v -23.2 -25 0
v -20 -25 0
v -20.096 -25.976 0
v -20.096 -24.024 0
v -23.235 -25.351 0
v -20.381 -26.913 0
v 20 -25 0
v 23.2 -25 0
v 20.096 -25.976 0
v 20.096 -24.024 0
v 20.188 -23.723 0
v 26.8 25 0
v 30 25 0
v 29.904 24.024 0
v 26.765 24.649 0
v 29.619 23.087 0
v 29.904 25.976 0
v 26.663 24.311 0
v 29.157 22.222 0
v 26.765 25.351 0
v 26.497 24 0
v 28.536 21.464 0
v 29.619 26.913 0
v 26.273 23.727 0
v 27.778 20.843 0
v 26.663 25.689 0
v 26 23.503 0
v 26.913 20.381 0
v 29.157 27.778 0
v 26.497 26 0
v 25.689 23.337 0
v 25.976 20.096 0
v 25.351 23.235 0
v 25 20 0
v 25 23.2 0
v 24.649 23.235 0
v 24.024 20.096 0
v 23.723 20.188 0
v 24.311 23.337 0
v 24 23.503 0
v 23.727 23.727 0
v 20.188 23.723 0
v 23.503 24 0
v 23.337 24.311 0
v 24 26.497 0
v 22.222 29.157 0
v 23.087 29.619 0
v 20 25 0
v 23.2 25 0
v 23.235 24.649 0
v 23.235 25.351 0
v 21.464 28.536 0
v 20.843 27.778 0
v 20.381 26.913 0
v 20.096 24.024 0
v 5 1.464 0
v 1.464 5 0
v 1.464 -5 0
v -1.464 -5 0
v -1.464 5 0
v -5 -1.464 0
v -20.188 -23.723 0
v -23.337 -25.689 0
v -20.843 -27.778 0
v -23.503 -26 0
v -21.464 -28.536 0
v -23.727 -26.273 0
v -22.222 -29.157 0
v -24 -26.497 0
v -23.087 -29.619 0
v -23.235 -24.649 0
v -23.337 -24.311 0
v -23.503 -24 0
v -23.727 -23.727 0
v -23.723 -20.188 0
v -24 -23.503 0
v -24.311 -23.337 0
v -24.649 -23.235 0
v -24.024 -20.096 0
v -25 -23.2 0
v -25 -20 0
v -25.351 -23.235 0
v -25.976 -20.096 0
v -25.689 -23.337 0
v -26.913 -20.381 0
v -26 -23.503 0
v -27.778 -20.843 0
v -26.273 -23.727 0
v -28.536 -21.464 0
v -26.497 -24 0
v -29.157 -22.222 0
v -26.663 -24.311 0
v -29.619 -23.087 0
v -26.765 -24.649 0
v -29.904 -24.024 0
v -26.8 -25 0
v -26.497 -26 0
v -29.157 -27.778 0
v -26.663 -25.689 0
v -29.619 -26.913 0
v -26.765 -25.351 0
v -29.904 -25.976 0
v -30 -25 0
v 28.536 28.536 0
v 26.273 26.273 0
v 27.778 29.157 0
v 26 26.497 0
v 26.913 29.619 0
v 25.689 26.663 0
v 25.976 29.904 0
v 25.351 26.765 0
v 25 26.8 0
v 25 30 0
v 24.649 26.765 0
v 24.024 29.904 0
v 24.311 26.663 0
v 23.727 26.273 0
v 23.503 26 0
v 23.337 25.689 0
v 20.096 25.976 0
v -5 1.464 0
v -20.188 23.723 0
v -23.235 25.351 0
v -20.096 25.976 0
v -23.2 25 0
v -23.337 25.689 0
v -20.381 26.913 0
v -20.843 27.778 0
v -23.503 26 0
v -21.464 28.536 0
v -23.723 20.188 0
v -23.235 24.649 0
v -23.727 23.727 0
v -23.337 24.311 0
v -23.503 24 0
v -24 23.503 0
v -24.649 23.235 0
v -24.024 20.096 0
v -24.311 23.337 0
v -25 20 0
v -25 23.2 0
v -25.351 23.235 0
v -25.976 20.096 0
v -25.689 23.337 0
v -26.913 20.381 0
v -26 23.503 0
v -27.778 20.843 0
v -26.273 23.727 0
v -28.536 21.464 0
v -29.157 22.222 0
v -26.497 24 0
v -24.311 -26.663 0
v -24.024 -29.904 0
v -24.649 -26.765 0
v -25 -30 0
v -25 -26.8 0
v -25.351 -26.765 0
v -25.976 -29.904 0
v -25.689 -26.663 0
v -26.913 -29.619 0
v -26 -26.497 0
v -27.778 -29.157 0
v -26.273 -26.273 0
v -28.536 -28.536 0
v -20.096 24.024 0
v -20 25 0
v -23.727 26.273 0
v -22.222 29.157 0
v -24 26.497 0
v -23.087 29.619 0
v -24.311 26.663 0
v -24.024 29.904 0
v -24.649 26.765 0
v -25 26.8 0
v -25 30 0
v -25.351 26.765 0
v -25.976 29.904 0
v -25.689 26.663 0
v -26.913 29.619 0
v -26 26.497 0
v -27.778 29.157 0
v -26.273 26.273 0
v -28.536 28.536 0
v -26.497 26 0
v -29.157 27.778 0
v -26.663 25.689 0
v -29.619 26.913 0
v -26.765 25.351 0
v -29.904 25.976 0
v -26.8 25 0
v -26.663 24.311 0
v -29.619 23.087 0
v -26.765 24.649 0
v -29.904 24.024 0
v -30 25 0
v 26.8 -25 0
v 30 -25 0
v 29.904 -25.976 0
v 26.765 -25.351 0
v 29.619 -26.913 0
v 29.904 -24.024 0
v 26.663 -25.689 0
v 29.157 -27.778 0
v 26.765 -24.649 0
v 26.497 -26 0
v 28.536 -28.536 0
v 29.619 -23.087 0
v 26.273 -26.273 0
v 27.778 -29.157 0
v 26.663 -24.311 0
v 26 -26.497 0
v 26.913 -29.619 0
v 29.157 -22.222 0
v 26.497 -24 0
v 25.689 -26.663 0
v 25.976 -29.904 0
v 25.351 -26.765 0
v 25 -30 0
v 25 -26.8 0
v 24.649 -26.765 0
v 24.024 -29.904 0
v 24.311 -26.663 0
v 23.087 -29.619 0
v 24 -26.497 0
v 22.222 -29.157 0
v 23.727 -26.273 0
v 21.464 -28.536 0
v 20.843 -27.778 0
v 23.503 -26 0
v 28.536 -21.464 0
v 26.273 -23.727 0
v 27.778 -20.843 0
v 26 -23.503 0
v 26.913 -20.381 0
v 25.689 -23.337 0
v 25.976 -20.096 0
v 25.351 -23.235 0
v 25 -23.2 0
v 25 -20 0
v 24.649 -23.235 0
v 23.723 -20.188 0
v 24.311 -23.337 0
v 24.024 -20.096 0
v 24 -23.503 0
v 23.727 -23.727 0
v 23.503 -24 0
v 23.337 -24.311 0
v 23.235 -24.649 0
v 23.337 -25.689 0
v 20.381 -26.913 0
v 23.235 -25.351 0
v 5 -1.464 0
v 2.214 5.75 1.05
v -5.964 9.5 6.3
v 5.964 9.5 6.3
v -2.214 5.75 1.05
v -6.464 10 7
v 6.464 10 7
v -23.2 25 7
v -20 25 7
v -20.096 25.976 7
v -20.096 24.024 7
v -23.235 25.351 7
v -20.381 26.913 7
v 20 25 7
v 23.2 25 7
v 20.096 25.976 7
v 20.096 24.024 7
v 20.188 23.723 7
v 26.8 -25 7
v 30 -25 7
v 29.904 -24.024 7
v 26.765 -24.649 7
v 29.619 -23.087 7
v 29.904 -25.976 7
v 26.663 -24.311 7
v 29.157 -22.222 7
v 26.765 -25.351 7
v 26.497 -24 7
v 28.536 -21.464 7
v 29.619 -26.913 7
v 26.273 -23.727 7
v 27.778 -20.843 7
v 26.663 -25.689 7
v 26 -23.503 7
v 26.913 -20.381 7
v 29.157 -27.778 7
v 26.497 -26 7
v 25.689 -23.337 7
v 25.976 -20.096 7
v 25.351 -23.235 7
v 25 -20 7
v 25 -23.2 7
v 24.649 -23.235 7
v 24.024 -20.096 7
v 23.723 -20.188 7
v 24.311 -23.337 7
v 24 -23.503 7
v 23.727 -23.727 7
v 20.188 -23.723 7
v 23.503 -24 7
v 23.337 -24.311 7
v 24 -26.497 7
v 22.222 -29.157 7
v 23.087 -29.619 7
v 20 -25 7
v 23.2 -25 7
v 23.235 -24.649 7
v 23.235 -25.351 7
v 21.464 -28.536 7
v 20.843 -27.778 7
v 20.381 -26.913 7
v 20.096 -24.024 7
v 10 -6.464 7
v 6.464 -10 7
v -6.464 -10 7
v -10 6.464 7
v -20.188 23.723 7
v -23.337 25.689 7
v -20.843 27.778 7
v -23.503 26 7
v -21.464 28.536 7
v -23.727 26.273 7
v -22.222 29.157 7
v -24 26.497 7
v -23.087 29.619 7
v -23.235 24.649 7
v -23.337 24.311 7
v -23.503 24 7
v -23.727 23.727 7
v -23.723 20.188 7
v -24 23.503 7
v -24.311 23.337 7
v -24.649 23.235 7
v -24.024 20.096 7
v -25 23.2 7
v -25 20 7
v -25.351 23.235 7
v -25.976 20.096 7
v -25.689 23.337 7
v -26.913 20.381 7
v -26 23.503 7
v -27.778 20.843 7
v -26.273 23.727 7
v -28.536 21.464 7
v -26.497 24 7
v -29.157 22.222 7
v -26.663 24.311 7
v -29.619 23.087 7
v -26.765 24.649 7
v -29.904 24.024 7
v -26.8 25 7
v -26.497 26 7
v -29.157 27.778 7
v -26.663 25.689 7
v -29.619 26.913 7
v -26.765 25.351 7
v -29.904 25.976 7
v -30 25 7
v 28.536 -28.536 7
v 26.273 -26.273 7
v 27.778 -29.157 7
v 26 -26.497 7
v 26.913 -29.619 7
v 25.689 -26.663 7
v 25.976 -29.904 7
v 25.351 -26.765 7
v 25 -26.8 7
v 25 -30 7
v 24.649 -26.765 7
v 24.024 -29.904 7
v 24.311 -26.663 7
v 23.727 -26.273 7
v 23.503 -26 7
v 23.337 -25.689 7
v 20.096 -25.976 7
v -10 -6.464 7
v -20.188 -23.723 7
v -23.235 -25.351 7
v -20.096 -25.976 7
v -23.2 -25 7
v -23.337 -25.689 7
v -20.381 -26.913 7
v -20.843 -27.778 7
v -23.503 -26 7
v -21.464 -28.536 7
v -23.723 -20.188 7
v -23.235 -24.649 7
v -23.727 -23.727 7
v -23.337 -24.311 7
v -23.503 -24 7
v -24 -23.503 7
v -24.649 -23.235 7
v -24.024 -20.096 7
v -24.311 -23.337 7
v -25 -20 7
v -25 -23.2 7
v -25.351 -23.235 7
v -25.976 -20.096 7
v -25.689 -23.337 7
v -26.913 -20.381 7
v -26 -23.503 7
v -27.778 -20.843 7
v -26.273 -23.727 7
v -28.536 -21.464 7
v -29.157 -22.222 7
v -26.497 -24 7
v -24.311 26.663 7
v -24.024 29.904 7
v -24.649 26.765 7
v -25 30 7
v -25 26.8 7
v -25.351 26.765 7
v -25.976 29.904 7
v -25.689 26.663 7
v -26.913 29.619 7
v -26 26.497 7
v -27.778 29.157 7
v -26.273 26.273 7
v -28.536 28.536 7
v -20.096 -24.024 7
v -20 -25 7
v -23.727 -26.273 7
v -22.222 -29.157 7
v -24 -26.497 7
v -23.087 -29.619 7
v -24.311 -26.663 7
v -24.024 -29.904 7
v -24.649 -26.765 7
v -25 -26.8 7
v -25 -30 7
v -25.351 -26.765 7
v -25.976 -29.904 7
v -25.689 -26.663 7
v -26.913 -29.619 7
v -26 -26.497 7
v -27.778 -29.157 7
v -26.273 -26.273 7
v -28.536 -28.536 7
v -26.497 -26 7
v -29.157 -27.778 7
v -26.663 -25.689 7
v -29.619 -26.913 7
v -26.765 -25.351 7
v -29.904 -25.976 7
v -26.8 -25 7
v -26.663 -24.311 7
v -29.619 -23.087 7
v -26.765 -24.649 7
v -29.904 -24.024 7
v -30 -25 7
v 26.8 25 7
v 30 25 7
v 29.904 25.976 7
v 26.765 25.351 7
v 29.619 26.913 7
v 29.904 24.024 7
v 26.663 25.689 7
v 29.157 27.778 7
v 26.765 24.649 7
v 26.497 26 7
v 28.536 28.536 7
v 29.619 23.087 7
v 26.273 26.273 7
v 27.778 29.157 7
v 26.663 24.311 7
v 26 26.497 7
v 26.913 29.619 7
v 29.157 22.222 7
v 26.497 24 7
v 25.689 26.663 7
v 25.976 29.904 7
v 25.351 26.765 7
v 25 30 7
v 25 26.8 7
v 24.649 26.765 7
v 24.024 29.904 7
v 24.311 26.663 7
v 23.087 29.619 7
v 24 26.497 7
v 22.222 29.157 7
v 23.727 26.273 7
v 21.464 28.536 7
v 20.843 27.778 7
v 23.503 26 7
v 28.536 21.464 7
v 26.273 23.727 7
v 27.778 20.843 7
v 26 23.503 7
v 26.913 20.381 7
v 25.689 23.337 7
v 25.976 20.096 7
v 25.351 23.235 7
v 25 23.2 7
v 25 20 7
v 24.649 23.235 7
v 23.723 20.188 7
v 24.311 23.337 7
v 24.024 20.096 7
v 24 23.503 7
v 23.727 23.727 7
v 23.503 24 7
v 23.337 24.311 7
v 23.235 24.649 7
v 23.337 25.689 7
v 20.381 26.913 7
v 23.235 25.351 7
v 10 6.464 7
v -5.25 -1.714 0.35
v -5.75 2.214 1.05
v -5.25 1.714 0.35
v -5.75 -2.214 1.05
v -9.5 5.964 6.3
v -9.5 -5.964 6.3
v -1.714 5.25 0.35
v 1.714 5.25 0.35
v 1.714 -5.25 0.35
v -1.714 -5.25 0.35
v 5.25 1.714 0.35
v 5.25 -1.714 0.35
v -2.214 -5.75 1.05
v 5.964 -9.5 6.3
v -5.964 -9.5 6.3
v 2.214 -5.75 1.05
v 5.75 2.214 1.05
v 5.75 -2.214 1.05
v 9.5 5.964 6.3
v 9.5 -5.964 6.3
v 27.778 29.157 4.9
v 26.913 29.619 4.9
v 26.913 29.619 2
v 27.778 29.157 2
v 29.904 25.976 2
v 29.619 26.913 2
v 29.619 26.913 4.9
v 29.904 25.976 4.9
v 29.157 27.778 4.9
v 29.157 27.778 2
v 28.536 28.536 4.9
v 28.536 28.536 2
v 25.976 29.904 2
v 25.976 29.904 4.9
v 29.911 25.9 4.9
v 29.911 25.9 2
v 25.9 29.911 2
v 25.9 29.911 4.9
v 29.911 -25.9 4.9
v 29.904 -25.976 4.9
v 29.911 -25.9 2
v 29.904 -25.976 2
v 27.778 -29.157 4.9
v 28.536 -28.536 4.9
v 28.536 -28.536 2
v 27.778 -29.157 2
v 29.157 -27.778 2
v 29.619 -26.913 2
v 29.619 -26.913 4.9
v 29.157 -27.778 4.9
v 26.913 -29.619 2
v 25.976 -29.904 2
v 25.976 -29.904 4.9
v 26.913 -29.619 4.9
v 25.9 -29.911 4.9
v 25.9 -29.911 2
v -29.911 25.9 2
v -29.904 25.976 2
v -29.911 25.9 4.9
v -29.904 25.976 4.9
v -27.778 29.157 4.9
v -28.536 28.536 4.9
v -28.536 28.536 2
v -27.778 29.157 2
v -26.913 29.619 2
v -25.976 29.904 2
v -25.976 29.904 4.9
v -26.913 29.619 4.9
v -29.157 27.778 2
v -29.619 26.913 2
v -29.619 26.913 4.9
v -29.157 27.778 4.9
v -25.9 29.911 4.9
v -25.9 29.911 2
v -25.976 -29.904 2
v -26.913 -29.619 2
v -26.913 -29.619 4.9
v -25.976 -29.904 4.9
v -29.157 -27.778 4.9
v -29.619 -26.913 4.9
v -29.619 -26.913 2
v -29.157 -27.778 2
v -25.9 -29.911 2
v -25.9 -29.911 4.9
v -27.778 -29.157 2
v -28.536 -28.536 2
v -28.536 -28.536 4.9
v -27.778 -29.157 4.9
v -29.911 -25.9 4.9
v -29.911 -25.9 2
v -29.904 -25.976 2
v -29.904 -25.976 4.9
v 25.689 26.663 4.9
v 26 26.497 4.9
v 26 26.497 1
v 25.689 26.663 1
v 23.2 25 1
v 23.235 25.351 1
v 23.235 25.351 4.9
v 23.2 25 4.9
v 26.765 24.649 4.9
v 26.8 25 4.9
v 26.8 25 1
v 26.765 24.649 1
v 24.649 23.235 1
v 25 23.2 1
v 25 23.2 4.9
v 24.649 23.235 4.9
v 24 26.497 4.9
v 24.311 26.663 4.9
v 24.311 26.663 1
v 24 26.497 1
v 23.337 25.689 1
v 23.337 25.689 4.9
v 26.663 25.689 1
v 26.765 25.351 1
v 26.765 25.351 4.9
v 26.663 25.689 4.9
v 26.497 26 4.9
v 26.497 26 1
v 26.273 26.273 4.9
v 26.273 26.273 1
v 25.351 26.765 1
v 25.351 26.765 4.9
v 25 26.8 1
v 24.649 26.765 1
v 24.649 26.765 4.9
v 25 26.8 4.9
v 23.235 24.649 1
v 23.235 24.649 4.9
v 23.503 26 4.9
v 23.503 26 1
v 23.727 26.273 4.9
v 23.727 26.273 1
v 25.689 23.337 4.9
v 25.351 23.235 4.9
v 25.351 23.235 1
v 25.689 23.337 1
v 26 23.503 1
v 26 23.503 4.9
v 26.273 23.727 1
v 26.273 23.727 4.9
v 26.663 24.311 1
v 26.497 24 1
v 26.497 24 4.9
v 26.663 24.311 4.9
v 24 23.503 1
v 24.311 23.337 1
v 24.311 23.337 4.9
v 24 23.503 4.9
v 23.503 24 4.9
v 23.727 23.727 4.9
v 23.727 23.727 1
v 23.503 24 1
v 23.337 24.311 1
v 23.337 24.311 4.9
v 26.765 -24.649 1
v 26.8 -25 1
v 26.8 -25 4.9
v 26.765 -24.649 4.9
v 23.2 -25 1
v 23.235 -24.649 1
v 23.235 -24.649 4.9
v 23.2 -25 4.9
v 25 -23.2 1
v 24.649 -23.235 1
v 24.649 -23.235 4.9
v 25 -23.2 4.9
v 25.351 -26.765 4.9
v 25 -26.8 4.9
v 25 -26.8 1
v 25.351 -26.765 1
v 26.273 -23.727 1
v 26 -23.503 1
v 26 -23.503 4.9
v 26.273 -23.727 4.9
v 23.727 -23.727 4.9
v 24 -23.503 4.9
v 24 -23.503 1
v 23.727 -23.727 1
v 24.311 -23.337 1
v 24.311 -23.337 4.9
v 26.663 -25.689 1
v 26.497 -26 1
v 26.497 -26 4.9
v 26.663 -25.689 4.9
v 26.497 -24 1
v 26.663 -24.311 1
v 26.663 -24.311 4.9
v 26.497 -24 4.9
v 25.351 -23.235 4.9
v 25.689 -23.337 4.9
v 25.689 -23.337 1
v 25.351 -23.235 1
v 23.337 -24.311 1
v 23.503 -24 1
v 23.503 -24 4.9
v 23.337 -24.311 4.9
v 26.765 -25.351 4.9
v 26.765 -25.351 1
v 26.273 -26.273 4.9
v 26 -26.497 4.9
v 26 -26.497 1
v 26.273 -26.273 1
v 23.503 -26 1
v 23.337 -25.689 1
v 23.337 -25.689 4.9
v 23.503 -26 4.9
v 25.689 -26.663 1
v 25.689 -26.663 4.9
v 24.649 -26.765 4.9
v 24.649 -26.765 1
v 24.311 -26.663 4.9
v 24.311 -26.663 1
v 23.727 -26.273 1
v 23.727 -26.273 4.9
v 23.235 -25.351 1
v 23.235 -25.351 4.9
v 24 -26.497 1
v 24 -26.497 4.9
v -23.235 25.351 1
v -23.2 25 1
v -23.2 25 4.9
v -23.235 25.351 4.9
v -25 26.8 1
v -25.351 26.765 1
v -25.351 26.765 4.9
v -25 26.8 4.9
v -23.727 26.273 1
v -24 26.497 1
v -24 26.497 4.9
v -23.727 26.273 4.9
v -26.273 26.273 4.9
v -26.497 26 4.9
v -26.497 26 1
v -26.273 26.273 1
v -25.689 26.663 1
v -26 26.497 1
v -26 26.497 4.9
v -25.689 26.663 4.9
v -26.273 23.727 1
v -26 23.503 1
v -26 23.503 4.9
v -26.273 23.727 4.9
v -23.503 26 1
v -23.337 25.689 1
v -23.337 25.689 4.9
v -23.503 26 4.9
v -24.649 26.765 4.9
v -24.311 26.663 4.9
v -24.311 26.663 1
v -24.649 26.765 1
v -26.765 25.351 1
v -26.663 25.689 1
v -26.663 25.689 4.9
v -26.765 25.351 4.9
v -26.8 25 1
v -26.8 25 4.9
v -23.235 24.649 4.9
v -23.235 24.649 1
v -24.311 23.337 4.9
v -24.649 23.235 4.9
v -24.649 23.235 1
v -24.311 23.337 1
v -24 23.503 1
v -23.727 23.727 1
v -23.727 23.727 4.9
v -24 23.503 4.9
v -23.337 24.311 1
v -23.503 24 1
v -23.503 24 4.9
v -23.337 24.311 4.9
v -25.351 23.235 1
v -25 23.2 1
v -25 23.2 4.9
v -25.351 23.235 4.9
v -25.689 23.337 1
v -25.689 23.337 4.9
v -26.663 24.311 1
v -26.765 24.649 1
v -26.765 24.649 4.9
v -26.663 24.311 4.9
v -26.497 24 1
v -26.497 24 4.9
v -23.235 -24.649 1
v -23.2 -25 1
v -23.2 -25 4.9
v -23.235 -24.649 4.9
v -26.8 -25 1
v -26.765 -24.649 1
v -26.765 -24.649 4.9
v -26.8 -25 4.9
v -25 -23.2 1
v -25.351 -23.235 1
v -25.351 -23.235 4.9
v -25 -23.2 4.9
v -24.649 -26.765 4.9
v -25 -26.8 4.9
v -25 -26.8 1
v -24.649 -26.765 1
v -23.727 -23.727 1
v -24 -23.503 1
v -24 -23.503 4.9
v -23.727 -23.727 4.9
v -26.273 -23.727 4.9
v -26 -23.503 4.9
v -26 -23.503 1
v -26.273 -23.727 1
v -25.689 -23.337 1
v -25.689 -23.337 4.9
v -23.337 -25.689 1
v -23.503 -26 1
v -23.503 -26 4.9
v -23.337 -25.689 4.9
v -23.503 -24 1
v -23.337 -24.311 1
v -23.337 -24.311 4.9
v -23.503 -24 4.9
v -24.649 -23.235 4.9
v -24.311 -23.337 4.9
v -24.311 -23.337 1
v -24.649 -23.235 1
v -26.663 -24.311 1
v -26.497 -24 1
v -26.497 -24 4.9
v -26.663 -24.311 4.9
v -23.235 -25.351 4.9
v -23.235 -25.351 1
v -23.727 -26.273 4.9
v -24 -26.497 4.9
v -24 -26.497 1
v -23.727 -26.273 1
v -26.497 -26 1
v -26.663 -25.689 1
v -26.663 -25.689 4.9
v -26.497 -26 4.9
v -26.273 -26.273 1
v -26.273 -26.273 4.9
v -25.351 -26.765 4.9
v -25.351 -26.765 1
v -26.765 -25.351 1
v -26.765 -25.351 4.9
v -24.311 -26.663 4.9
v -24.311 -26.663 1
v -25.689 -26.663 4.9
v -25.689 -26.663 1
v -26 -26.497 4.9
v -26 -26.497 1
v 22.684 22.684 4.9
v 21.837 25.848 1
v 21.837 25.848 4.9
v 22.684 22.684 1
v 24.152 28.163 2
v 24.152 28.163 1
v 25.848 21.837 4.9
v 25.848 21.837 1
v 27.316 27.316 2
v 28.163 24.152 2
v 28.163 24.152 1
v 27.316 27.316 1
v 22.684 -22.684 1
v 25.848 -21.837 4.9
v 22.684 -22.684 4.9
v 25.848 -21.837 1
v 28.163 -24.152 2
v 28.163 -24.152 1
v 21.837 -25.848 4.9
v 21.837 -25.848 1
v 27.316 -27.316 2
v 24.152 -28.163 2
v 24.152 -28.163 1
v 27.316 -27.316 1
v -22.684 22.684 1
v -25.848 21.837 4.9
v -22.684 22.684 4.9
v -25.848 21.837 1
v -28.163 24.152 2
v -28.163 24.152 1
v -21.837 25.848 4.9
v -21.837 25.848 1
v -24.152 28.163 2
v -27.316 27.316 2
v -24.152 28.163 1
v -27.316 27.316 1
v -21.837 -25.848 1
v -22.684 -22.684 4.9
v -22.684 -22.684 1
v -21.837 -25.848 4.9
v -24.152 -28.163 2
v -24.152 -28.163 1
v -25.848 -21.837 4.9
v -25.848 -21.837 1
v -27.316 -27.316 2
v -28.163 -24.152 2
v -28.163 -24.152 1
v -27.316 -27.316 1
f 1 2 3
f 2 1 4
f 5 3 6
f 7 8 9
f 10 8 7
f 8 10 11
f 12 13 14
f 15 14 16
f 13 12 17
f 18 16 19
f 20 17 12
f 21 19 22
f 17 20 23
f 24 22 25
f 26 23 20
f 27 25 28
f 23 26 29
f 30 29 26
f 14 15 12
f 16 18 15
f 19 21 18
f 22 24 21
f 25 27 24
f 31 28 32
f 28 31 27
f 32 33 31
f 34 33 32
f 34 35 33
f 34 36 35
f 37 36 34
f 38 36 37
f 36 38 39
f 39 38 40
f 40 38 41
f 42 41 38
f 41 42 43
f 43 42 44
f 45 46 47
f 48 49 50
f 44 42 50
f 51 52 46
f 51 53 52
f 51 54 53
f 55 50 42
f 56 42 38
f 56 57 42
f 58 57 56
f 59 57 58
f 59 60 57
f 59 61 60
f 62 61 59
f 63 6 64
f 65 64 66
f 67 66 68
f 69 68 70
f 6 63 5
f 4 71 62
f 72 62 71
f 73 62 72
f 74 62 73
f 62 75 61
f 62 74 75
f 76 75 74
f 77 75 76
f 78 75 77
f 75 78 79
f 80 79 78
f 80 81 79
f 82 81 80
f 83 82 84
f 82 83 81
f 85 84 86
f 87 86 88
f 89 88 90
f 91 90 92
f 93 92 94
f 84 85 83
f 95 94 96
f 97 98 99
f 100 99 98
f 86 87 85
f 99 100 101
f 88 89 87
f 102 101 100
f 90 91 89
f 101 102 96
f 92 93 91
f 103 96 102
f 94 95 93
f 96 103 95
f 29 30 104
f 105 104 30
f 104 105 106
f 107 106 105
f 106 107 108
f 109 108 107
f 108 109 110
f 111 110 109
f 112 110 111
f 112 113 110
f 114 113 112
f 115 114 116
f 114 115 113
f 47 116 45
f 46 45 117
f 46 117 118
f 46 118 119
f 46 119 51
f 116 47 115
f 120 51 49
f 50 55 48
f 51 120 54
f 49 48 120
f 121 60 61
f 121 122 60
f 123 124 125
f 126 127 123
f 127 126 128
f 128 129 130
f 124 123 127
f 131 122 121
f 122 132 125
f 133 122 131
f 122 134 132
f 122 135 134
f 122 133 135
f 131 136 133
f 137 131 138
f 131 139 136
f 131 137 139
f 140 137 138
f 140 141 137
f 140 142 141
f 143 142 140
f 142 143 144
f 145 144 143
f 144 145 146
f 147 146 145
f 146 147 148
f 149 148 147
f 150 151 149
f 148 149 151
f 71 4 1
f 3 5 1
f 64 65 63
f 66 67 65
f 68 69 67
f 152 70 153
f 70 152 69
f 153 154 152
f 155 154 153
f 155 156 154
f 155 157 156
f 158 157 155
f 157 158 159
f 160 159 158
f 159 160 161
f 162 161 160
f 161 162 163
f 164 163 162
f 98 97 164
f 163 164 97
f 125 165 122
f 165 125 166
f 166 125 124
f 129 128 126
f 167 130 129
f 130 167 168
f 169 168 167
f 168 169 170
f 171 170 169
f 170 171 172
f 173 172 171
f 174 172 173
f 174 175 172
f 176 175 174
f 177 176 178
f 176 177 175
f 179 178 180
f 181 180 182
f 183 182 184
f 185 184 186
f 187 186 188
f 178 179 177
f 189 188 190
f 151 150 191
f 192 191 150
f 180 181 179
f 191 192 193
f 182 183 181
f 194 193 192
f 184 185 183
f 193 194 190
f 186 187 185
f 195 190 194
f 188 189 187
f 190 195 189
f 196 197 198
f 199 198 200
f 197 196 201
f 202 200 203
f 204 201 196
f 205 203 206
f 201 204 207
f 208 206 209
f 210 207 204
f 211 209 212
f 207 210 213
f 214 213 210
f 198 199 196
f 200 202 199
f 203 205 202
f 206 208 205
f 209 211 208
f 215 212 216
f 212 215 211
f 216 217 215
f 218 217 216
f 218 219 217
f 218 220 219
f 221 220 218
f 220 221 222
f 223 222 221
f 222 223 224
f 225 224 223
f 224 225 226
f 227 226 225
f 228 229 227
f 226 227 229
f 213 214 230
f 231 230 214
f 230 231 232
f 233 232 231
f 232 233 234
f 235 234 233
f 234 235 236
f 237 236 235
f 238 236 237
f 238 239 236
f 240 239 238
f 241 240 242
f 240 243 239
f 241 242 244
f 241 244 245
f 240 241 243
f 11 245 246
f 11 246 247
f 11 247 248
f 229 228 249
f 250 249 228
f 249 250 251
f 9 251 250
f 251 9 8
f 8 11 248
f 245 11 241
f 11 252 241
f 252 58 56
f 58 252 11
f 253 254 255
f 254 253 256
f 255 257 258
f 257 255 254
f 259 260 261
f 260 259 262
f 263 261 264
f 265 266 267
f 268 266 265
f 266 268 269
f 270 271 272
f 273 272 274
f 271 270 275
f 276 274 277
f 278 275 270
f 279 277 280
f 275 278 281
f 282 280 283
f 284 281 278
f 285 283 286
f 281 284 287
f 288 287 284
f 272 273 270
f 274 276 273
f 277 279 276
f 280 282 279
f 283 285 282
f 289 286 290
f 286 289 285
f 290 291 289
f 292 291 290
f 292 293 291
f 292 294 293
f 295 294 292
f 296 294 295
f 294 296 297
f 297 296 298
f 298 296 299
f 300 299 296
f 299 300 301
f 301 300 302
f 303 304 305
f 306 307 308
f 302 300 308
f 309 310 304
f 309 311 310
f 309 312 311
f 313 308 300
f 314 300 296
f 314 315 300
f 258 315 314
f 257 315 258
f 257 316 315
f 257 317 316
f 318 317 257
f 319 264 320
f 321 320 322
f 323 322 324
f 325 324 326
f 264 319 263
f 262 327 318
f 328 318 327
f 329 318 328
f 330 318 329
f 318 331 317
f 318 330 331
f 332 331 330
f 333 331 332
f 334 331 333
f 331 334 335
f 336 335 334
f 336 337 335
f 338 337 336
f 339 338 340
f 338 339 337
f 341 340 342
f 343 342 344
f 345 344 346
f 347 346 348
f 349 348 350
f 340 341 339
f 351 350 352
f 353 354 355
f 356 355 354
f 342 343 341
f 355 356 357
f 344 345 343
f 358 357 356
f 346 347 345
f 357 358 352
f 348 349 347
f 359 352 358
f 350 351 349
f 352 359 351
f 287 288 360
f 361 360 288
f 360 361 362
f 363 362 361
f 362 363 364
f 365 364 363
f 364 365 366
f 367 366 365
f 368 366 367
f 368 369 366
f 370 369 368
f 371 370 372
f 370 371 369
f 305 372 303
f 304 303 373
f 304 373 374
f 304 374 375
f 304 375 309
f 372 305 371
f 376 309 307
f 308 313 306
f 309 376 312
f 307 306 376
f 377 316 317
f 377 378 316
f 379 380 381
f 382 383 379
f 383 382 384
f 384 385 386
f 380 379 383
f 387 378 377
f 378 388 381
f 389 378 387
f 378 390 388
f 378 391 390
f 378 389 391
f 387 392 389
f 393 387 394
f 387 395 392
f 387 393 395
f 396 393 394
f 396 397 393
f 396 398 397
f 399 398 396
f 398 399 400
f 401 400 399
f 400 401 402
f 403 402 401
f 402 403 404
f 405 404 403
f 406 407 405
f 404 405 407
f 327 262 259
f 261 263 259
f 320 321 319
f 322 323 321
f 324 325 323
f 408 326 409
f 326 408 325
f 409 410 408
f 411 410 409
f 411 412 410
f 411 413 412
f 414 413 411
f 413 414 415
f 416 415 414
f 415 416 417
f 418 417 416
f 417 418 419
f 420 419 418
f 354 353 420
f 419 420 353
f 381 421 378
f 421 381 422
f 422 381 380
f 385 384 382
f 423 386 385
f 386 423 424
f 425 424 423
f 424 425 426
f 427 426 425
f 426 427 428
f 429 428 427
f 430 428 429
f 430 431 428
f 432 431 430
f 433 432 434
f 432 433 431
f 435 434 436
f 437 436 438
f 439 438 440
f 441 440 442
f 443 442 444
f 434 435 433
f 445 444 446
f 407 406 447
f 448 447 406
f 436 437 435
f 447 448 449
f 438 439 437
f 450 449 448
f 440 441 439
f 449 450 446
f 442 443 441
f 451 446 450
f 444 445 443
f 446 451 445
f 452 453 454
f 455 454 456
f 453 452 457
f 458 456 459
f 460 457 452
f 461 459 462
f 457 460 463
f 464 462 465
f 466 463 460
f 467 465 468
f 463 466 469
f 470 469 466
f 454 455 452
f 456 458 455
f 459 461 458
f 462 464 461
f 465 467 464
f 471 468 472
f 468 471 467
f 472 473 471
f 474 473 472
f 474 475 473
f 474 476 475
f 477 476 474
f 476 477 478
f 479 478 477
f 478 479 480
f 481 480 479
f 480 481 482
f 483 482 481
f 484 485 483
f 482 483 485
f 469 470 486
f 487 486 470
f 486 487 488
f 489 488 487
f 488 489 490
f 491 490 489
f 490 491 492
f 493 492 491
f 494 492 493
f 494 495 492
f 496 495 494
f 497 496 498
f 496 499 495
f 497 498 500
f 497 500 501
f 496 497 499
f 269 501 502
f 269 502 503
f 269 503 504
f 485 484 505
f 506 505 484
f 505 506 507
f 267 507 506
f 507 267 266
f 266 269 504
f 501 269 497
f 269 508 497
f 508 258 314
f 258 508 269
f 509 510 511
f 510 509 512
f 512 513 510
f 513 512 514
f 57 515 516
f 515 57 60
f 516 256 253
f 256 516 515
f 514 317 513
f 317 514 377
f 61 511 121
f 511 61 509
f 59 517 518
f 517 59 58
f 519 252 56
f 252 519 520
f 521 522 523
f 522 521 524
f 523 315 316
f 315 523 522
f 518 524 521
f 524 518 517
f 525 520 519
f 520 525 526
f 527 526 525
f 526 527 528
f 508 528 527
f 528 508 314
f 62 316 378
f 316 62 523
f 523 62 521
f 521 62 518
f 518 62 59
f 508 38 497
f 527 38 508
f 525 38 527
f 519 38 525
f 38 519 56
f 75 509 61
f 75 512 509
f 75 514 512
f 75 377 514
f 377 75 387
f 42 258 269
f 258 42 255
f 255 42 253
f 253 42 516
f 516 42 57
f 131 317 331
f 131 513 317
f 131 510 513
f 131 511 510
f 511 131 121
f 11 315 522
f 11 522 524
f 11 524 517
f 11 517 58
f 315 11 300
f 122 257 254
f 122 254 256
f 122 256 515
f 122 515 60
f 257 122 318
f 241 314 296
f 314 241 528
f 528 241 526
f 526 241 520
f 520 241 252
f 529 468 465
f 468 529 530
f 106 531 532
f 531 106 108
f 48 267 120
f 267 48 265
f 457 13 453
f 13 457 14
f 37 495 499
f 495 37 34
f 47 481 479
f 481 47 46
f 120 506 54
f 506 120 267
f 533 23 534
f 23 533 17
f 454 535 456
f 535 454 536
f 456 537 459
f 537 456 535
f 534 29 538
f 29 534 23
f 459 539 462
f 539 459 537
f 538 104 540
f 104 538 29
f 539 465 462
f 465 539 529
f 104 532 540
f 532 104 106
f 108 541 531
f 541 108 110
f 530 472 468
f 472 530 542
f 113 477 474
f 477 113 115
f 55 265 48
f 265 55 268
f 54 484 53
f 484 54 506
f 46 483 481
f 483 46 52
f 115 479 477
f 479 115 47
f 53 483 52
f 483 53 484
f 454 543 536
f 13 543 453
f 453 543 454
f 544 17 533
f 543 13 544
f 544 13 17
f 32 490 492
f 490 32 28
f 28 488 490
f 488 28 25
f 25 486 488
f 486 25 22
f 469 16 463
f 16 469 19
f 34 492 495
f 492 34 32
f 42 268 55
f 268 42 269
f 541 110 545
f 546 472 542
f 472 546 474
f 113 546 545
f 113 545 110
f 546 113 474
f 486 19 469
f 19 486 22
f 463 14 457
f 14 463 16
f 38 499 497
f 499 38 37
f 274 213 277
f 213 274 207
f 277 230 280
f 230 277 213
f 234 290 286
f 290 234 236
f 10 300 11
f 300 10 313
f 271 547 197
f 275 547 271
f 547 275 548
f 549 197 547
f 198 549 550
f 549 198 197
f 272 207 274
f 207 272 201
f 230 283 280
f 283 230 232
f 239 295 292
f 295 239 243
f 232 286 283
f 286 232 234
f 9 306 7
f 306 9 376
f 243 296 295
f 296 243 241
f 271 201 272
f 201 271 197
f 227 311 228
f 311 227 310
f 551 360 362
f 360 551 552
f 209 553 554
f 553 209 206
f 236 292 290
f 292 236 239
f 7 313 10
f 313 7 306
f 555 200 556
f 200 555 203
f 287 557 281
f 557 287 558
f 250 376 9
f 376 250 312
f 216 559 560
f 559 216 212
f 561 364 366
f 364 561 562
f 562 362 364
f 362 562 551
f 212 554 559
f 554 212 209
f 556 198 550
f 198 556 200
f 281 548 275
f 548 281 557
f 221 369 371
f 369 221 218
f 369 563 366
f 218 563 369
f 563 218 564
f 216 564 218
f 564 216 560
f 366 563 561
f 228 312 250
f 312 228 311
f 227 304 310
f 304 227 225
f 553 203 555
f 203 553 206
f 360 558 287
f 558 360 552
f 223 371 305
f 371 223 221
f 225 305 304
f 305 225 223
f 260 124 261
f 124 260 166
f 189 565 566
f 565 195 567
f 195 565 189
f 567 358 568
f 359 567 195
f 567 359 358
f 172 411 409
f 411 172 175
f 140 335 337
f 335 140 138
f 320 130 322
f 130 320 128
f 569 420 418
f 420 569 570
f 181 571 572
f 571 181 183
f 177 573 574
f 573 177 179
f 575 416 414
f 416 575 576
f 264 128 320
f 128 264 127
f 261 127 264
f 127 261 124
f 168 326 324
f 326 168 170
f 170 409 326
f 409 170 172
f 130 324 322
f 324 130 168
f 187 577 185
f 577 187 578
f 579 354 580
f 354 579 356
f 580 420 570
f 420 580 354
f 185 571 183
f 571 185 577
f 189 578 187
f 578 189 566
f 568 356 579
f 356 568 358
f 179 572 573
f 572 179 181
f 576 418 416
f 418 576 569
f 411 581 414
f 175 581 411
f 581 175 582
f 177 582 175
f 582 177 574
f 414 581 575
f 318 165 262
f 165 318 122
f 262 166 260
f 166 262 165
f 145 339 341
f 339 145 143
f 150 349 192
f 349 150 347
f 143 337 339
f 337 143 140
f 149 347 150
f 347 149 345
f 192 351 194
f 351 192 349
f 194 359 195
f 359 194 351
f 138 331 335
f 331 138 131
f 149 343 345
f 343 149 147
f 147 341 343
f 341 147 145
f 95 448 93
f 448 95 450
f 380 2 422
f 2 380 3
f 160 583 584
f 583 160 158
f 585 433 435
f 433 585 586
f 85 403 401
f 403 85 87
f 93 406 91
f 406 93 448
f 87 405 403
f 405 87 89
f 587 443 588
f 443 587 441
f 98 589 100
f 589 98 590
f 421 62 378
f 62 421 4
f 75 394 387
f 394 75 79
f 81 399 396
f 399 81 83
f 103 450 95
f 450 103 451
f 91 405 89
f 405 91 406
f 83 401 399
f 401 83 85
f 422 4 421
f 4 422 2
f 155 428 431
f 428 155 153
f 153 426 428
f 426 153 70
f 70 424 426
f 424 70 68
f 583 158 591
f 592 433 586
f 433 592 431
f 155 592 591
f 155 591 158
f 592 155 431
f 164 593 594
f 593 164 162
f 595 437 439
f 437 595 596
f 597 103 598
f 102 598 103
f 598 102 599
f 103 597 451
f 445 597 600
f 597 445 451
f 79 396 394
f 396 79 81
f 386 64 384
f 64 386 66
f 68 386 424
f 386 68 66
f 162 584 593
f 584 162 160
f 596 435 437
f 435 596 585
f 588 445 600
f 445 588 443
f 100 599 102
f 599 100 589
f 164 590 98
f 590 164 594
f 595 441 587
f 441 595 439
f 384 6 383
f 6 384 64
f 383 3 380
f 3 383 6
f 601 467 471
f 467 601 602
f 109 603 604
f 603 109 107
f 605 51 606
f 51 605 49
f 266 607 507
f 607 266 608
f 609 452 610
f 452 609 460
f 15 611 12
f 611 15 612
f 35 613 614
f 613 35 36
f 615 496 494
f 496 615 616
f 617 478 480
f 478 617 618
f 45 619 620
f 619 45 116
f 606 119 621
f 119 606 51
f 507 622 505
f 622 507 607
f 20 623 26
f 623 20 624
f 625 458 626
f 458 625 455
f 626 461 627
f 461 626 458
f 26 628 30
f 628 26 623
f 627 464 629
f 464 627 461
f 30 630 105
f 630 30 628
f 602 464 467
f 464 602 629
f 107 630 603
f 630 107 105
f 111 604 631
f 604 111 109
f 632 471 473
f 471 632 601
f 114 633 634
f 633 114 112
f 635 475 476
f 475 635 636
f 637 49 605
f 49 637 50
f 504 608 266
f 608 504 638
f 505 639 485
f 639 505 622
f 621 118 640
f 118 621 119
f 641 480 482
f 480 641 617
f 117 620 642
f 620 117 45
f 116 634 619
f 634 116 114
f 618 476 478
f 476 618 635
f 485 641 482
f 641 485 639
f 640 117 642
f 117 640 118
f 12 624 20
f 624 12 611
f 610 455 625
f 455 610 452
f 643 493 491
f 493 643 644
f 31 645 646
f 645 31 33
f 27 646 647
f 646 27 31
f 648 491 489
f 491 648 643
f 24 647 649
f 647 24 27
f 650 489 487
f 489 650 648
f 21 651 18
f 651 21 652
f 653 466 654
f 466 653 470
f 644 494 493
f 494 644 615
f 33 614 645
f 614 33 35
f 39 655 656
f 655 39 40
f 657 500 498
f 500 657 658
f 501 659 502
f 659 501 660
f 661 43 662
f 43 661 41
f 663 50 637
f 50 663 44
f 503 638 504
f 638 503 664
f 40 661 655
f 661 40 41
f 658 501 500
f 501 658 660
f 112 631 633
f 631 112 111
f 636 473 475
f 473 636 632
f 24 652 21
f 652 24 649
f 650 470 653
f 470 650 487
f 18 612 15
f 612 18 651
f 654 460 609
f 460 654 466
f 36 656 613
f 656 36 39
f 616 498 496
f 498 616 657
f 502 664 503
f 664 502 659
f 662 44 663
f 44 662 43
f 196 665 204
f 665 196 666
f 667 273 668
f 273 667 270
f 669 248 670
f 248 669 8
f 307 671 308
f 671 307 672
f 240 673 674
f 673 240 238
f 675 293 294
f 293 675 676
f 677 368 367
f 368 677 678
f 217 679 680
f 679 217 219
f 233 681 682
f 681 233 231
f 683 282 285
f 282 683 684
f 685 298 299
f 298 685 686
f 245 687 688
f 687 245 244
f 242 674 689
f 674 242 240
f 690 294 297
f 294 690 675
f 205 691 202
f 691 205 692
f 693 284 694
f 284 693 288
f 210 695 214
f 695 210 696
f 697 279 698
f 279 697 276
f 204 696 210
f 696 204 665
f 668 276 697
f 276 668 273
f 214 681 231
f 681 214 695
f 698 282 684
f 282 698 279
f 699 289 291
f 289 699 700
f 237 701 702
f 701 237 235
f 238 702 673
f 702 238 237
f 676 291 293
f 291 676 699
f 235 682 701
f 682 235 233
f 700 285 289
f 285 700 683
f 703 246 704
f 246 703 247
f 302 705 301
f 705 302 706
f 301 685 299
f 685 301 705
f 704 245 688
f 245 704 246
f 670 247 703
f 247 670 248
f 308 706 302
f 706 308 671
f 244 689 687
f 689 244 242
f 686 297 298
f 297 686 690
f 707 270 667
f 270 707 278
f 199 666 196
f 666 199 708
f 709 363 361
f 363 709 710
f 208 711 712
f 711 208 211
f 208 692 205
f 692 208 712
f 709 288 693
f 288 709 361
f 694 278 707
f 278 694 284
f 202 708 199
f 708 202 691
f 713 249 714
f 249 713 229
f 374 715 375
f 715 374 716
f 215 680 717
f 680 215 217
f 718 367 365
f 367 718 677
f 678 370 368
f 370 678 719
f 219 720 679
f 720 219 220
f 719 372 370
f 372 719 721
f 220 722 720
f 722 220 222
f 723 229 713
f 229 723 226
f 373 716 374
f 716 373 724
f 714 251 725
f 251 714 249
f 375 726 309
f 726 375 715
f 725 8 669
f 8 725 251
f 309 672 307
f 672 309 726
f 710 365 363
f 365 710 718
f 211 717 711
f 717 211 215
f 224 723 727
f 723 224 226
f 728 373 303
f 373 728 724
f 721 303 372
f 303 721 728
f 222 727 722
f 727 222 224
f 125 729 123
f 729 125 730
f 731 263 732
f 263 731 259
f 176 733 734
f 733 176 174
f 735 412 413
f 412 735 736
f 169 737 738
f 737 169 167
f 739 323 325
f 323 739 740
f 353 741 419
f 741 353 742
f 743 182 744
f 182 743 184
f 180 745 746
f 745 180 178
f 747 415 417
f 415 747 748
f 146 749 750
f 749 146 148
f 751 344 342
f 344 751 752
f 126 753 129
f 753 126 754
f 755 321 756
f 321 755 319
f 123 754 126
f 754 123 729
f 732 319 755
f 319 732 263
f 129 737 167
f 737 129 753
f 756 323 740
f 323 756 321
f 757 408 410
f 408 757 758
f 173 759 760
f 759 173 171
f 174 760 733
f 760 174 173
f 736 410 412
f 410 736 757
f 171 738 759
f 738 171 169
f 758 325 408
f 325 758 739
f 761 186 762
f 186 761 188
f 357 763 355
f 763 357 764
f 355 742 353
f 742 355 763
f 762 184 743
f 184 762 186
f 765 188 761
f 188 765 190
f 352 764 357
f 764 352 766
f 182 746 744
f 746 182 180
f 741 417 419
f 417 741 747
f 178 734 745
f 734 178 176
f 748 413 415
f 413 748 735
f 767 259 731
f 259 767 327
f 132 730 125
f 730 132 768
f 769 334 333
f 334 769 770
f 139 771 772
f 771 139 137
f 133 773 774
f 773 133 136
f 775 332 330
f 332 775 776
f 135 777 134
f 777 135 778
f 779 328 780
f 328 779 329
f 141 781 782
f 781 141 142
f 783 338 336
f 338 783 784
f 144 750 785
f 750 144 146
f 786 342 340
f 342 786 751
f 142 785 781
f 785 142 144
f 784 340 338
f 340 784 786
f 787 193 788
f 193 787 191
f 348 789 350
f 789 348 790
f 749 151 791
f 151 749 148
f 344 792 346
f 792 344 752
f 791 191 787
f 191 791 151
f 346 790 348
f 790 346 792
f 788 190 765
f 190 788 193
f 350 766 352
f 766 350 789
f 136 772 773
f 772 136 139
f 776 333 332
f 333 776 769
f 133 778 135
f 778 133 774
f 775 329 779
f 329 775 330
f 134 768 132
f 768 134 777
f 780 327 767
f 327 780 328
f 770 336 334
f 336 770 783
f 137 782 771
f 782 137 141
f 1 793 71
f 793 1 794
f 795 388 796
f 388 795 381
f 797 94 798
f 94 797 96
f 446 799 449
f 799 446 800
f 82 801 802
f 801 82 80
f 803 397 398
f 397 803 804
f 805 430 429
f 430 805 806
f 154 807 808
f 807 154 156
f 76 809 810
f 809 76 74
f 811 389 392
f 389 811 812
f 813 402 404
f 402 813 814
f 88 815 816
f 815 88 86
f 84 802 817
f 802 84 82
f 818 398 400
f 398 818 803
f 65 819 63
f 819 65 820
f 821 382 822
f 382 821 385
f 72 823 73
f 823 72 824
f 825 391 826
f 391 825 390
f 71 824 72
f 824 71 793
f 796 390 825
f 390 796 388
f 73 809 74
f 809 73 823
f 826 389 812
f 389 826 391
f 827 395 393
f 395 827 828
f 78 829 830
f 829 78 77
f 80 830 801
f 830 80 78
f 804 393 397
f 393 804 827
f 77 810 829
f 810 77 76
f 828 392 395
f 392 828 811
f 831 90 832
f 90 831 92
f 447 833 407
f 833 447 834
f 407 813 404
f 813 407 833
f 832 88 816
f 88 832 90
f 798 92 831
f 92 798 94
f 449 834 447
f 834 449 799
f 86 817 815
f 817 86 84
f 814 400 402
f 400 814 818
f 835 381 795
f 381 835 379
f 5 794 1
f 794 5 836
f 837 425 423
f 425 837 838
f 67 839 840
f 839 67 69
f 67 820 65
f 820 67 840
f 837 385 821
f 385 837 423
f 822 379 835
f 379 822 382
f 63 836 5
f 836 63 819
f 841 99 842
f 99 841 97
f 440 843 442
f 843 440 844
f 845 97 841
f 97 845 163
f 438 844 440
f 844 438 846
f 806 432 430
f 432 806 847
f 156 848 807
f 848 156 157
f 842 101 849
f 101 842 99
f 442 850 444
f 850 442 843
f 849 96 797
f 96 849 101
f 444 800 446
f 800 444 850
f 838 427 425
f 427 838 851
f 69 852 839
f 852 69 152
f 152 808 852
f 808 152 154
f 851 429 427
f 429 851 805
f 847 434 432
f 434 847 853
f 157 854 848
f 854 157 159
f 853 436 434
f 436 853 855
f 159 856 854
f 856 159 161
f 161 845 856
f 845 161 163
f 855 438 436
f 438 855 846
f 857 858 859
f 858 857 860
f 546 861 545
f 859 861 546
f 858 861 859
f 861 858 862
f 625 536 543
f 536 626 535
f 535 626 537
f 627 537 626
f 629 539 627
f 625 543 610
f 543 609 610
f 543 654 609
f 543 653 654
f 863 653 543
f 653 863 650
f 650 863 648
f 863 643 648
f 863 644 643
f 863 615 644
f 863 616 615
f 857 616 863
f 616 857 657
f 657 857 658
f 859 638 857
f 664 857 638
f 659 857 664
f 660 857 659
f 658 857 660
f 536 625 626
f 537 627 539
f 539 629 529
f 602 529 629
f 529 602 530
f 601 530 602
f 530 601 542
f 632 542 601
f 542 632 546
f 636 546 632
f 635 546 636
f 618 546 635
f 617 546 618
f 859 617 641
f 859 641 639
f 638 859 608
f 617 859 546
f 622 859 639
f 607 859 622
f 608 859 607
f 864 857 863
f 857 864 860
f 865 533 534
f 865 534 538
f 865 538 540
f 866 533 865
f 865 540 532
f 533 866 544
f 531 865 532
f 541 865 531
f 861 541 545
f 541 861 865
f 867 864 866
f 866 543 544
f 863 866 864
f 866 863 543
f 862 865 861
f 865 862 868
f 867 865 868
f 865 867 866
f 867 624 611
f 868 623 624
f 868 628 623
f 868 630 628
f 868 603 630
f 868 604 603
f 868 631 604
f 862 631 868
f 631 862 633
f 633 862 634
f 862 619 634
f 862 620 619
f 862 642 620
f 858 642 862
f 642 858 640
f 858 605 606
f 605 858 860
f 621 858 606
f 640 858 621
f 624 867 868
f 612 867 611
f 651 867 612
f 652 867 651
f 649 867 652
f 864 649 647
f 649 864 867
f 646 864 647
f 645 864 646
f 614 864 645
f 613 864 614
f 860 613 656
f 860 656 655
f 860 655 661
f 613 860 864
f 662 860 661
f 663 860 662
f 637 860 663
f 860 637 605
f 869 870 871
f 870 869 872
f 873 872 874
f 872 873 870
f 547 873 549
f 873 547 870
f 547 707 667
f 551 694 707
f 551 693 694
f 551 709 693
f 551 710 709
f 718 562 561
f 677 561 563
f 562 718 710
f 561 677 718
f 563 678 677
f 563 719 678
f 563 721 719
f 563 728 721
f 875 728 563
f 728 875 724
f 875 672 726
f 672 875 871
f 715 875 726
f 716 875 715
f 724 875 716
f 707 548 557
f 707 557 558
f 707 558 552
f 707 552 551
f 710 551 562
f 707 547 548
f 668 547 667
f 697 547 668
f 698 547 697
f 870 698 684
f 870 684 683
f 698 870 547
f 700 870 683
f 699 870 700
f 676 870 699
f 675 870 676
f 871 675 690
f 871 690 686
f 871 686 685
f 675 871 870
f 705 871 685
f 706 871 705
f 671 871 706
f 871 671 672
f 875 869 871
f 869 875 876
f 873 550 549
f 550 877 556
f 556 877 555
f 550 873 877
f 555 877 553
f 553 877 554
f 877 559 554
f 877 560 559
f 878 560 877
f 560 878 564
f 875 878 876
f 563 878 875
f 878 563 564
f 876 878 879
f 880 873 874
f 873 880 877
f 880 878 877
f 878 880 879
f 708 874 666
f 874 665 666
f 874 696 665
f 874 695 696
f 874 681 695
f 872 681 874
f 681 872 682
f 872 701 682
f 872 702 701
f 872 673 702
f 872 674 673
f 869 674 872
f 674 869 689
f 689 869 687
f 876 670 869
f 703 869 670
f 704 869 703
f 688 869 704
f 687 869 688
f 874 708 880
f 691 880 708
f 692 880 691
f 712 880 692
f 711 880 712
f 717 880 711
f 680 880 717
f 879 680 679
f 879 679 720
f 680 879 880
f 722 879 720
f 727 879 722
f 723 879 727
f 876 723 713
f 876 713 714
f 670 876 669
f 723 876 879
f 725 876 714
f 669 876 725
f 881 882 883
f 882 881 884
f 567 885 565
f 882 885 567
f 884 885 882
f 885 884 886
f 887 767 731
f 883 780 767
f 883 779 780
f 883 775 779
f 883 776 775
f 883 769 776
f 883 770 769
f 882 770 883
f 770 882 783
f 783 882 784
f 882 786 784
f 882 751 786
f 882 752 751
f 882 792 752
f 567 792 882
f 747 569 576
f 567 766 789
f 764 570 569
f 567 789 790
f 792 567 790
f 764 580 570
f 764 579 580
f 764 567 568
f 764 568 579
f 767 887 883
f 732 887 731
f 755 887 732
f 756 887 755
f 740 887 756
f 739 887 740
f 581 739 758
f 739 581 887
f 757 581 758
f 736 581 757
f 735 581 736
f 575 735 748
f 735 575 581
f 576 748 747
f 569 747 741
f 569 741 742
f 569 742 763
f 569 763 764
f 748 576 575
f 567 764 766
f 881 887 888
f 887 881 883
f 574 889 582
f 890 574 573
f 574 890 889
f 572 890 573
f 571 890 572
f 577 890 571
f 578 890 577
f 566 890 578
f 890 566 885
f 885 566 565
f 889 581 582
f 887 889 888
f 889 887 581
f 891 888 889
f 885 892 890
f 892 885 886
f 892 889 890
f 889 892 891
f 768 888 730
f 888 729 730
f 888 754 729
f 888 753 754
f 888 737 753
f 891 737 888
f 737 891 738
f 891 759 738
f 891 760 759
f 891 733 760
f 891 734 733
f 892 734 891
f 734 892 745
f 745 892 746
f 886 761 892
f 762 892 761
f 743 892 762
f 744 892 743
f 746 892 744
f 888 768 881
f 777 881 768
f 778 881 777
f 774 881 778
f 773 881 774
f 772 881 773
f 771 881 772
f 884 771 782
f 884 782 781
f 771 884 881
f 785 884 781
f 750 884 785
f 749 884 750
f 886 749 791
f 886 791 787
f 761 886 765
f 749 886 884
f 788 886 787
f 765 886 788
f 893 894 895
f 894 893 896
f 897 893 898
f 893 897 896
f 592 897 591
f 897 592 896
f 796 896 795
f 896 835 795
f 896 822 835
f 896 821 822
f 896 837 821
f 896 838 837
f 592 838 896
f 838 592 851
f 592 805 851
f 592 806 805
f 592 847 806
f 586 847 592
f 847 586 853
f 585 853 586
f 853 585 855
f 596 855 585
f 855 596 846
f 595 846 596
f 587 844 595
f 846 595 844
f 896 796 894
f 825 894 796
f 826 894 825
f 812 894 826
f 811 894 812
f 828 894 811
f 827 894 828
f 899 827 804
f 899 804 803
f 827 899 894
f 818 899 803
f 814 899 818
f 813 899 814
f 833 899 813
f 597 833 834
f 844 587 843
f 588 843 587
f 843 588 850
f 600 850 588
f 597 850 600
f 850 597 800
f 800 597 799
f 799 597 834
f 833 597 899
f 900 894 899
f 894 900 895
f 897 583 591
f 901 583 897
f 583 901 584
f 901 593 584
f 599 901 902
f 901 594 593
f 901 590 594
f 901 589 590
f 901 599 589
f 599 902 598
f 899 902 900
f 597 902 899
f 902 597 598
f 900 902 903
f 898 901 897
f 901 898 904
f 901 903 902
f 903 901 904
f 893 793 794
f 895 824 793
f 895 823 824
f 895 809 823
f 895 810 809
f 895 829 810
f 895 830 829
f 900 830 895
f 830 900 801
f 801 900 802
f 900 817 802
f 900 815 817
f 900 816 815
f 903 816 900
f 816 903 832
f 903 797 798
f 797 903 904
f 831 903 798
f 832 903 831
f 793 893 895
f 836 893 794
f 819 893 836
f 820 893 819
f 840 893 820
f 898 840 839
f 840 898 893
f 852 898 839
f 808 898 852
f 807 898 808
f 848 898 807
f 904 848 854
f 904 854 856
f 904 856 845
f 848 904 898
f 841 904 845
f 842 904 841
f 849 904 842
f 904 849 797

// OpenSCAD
hole_dia = 3.6;
corner_dia = 10;
corner_height = 7;
nut_height = 2.9;
nut_dia=0.8 + (5.5+6)/2;
nut_dia_clearance=0.4;
nut_offset = 1;
nut_recess = 1;
center_side=20;
center_height=7;

//corner();

//body();
support();
$fn=32;
 
module corner()
{
	cylinder(h=corner_height,d=corner_dia);

}

module support()
{
difference(){
	body();
	holes();
	nut_holes();
}
}

module hole(){
	cylinder(h=corner_height,d=hole_dia);
}

module nut_hole(){
	cube_width= nut_dia * sqrt(3)/2; 
	translate([0,0,nut_offset])
	cylinder(h=nut_height,d=nut_dia, $fn=6);
	translate([0,0,nut_offset+nut_recess]){
	cylinder(h=nut_height,d=nut_dia, $fn=6);
	translate([0,-cube_width/2,0])
	cube([20,cube_width,nut_height]);
}

}

module holes()
{
translate([25,25,0])
hole();
translate([25,-25,0])
hole();
translate([-25,25,0])
hole();
translate([-25,-25,0])
hole();
}

module nut_holes()
{
translate([25,25,0])
	rotate([0,0,45])
nut_hole();
translate([25,-25,0])
	rotate([0,0,-45])
nut_hole();
translate([-25,25,0])
	rotate([0,0,135])
nut_hole();
translate([-25,-25,0])
	rotate([0,0,-135])
nut_hole();
}


module body()
{
//translate([-center_side/2,-center_side/2,0])
//cube([center_side,center_side,center_height]);

translate([0,0,center_height/2])
linear_extrude(height = center_height, center = true, convexity = 10, slices =
20, scale = 2, $fn = 16) {
square([center_side*0.5,center_side *0.5],center=true);
}

rotate([0,0,45])
translate([-sqrt(2)*25,-2.5,0])
cube([2*sqrt(2)*25,5,corner_height]);
rotate([0,0,-45])
translate([-sqrt(2)*25,-2.5,0])
cube([2*sqrt(2)*25,5,corner_height]);
translate([25,25,0])
corner();
translate([25,-25,0])
corner();
translate([-25,25,0])
corner();
translate([-25,-25,0])
corner();
}
